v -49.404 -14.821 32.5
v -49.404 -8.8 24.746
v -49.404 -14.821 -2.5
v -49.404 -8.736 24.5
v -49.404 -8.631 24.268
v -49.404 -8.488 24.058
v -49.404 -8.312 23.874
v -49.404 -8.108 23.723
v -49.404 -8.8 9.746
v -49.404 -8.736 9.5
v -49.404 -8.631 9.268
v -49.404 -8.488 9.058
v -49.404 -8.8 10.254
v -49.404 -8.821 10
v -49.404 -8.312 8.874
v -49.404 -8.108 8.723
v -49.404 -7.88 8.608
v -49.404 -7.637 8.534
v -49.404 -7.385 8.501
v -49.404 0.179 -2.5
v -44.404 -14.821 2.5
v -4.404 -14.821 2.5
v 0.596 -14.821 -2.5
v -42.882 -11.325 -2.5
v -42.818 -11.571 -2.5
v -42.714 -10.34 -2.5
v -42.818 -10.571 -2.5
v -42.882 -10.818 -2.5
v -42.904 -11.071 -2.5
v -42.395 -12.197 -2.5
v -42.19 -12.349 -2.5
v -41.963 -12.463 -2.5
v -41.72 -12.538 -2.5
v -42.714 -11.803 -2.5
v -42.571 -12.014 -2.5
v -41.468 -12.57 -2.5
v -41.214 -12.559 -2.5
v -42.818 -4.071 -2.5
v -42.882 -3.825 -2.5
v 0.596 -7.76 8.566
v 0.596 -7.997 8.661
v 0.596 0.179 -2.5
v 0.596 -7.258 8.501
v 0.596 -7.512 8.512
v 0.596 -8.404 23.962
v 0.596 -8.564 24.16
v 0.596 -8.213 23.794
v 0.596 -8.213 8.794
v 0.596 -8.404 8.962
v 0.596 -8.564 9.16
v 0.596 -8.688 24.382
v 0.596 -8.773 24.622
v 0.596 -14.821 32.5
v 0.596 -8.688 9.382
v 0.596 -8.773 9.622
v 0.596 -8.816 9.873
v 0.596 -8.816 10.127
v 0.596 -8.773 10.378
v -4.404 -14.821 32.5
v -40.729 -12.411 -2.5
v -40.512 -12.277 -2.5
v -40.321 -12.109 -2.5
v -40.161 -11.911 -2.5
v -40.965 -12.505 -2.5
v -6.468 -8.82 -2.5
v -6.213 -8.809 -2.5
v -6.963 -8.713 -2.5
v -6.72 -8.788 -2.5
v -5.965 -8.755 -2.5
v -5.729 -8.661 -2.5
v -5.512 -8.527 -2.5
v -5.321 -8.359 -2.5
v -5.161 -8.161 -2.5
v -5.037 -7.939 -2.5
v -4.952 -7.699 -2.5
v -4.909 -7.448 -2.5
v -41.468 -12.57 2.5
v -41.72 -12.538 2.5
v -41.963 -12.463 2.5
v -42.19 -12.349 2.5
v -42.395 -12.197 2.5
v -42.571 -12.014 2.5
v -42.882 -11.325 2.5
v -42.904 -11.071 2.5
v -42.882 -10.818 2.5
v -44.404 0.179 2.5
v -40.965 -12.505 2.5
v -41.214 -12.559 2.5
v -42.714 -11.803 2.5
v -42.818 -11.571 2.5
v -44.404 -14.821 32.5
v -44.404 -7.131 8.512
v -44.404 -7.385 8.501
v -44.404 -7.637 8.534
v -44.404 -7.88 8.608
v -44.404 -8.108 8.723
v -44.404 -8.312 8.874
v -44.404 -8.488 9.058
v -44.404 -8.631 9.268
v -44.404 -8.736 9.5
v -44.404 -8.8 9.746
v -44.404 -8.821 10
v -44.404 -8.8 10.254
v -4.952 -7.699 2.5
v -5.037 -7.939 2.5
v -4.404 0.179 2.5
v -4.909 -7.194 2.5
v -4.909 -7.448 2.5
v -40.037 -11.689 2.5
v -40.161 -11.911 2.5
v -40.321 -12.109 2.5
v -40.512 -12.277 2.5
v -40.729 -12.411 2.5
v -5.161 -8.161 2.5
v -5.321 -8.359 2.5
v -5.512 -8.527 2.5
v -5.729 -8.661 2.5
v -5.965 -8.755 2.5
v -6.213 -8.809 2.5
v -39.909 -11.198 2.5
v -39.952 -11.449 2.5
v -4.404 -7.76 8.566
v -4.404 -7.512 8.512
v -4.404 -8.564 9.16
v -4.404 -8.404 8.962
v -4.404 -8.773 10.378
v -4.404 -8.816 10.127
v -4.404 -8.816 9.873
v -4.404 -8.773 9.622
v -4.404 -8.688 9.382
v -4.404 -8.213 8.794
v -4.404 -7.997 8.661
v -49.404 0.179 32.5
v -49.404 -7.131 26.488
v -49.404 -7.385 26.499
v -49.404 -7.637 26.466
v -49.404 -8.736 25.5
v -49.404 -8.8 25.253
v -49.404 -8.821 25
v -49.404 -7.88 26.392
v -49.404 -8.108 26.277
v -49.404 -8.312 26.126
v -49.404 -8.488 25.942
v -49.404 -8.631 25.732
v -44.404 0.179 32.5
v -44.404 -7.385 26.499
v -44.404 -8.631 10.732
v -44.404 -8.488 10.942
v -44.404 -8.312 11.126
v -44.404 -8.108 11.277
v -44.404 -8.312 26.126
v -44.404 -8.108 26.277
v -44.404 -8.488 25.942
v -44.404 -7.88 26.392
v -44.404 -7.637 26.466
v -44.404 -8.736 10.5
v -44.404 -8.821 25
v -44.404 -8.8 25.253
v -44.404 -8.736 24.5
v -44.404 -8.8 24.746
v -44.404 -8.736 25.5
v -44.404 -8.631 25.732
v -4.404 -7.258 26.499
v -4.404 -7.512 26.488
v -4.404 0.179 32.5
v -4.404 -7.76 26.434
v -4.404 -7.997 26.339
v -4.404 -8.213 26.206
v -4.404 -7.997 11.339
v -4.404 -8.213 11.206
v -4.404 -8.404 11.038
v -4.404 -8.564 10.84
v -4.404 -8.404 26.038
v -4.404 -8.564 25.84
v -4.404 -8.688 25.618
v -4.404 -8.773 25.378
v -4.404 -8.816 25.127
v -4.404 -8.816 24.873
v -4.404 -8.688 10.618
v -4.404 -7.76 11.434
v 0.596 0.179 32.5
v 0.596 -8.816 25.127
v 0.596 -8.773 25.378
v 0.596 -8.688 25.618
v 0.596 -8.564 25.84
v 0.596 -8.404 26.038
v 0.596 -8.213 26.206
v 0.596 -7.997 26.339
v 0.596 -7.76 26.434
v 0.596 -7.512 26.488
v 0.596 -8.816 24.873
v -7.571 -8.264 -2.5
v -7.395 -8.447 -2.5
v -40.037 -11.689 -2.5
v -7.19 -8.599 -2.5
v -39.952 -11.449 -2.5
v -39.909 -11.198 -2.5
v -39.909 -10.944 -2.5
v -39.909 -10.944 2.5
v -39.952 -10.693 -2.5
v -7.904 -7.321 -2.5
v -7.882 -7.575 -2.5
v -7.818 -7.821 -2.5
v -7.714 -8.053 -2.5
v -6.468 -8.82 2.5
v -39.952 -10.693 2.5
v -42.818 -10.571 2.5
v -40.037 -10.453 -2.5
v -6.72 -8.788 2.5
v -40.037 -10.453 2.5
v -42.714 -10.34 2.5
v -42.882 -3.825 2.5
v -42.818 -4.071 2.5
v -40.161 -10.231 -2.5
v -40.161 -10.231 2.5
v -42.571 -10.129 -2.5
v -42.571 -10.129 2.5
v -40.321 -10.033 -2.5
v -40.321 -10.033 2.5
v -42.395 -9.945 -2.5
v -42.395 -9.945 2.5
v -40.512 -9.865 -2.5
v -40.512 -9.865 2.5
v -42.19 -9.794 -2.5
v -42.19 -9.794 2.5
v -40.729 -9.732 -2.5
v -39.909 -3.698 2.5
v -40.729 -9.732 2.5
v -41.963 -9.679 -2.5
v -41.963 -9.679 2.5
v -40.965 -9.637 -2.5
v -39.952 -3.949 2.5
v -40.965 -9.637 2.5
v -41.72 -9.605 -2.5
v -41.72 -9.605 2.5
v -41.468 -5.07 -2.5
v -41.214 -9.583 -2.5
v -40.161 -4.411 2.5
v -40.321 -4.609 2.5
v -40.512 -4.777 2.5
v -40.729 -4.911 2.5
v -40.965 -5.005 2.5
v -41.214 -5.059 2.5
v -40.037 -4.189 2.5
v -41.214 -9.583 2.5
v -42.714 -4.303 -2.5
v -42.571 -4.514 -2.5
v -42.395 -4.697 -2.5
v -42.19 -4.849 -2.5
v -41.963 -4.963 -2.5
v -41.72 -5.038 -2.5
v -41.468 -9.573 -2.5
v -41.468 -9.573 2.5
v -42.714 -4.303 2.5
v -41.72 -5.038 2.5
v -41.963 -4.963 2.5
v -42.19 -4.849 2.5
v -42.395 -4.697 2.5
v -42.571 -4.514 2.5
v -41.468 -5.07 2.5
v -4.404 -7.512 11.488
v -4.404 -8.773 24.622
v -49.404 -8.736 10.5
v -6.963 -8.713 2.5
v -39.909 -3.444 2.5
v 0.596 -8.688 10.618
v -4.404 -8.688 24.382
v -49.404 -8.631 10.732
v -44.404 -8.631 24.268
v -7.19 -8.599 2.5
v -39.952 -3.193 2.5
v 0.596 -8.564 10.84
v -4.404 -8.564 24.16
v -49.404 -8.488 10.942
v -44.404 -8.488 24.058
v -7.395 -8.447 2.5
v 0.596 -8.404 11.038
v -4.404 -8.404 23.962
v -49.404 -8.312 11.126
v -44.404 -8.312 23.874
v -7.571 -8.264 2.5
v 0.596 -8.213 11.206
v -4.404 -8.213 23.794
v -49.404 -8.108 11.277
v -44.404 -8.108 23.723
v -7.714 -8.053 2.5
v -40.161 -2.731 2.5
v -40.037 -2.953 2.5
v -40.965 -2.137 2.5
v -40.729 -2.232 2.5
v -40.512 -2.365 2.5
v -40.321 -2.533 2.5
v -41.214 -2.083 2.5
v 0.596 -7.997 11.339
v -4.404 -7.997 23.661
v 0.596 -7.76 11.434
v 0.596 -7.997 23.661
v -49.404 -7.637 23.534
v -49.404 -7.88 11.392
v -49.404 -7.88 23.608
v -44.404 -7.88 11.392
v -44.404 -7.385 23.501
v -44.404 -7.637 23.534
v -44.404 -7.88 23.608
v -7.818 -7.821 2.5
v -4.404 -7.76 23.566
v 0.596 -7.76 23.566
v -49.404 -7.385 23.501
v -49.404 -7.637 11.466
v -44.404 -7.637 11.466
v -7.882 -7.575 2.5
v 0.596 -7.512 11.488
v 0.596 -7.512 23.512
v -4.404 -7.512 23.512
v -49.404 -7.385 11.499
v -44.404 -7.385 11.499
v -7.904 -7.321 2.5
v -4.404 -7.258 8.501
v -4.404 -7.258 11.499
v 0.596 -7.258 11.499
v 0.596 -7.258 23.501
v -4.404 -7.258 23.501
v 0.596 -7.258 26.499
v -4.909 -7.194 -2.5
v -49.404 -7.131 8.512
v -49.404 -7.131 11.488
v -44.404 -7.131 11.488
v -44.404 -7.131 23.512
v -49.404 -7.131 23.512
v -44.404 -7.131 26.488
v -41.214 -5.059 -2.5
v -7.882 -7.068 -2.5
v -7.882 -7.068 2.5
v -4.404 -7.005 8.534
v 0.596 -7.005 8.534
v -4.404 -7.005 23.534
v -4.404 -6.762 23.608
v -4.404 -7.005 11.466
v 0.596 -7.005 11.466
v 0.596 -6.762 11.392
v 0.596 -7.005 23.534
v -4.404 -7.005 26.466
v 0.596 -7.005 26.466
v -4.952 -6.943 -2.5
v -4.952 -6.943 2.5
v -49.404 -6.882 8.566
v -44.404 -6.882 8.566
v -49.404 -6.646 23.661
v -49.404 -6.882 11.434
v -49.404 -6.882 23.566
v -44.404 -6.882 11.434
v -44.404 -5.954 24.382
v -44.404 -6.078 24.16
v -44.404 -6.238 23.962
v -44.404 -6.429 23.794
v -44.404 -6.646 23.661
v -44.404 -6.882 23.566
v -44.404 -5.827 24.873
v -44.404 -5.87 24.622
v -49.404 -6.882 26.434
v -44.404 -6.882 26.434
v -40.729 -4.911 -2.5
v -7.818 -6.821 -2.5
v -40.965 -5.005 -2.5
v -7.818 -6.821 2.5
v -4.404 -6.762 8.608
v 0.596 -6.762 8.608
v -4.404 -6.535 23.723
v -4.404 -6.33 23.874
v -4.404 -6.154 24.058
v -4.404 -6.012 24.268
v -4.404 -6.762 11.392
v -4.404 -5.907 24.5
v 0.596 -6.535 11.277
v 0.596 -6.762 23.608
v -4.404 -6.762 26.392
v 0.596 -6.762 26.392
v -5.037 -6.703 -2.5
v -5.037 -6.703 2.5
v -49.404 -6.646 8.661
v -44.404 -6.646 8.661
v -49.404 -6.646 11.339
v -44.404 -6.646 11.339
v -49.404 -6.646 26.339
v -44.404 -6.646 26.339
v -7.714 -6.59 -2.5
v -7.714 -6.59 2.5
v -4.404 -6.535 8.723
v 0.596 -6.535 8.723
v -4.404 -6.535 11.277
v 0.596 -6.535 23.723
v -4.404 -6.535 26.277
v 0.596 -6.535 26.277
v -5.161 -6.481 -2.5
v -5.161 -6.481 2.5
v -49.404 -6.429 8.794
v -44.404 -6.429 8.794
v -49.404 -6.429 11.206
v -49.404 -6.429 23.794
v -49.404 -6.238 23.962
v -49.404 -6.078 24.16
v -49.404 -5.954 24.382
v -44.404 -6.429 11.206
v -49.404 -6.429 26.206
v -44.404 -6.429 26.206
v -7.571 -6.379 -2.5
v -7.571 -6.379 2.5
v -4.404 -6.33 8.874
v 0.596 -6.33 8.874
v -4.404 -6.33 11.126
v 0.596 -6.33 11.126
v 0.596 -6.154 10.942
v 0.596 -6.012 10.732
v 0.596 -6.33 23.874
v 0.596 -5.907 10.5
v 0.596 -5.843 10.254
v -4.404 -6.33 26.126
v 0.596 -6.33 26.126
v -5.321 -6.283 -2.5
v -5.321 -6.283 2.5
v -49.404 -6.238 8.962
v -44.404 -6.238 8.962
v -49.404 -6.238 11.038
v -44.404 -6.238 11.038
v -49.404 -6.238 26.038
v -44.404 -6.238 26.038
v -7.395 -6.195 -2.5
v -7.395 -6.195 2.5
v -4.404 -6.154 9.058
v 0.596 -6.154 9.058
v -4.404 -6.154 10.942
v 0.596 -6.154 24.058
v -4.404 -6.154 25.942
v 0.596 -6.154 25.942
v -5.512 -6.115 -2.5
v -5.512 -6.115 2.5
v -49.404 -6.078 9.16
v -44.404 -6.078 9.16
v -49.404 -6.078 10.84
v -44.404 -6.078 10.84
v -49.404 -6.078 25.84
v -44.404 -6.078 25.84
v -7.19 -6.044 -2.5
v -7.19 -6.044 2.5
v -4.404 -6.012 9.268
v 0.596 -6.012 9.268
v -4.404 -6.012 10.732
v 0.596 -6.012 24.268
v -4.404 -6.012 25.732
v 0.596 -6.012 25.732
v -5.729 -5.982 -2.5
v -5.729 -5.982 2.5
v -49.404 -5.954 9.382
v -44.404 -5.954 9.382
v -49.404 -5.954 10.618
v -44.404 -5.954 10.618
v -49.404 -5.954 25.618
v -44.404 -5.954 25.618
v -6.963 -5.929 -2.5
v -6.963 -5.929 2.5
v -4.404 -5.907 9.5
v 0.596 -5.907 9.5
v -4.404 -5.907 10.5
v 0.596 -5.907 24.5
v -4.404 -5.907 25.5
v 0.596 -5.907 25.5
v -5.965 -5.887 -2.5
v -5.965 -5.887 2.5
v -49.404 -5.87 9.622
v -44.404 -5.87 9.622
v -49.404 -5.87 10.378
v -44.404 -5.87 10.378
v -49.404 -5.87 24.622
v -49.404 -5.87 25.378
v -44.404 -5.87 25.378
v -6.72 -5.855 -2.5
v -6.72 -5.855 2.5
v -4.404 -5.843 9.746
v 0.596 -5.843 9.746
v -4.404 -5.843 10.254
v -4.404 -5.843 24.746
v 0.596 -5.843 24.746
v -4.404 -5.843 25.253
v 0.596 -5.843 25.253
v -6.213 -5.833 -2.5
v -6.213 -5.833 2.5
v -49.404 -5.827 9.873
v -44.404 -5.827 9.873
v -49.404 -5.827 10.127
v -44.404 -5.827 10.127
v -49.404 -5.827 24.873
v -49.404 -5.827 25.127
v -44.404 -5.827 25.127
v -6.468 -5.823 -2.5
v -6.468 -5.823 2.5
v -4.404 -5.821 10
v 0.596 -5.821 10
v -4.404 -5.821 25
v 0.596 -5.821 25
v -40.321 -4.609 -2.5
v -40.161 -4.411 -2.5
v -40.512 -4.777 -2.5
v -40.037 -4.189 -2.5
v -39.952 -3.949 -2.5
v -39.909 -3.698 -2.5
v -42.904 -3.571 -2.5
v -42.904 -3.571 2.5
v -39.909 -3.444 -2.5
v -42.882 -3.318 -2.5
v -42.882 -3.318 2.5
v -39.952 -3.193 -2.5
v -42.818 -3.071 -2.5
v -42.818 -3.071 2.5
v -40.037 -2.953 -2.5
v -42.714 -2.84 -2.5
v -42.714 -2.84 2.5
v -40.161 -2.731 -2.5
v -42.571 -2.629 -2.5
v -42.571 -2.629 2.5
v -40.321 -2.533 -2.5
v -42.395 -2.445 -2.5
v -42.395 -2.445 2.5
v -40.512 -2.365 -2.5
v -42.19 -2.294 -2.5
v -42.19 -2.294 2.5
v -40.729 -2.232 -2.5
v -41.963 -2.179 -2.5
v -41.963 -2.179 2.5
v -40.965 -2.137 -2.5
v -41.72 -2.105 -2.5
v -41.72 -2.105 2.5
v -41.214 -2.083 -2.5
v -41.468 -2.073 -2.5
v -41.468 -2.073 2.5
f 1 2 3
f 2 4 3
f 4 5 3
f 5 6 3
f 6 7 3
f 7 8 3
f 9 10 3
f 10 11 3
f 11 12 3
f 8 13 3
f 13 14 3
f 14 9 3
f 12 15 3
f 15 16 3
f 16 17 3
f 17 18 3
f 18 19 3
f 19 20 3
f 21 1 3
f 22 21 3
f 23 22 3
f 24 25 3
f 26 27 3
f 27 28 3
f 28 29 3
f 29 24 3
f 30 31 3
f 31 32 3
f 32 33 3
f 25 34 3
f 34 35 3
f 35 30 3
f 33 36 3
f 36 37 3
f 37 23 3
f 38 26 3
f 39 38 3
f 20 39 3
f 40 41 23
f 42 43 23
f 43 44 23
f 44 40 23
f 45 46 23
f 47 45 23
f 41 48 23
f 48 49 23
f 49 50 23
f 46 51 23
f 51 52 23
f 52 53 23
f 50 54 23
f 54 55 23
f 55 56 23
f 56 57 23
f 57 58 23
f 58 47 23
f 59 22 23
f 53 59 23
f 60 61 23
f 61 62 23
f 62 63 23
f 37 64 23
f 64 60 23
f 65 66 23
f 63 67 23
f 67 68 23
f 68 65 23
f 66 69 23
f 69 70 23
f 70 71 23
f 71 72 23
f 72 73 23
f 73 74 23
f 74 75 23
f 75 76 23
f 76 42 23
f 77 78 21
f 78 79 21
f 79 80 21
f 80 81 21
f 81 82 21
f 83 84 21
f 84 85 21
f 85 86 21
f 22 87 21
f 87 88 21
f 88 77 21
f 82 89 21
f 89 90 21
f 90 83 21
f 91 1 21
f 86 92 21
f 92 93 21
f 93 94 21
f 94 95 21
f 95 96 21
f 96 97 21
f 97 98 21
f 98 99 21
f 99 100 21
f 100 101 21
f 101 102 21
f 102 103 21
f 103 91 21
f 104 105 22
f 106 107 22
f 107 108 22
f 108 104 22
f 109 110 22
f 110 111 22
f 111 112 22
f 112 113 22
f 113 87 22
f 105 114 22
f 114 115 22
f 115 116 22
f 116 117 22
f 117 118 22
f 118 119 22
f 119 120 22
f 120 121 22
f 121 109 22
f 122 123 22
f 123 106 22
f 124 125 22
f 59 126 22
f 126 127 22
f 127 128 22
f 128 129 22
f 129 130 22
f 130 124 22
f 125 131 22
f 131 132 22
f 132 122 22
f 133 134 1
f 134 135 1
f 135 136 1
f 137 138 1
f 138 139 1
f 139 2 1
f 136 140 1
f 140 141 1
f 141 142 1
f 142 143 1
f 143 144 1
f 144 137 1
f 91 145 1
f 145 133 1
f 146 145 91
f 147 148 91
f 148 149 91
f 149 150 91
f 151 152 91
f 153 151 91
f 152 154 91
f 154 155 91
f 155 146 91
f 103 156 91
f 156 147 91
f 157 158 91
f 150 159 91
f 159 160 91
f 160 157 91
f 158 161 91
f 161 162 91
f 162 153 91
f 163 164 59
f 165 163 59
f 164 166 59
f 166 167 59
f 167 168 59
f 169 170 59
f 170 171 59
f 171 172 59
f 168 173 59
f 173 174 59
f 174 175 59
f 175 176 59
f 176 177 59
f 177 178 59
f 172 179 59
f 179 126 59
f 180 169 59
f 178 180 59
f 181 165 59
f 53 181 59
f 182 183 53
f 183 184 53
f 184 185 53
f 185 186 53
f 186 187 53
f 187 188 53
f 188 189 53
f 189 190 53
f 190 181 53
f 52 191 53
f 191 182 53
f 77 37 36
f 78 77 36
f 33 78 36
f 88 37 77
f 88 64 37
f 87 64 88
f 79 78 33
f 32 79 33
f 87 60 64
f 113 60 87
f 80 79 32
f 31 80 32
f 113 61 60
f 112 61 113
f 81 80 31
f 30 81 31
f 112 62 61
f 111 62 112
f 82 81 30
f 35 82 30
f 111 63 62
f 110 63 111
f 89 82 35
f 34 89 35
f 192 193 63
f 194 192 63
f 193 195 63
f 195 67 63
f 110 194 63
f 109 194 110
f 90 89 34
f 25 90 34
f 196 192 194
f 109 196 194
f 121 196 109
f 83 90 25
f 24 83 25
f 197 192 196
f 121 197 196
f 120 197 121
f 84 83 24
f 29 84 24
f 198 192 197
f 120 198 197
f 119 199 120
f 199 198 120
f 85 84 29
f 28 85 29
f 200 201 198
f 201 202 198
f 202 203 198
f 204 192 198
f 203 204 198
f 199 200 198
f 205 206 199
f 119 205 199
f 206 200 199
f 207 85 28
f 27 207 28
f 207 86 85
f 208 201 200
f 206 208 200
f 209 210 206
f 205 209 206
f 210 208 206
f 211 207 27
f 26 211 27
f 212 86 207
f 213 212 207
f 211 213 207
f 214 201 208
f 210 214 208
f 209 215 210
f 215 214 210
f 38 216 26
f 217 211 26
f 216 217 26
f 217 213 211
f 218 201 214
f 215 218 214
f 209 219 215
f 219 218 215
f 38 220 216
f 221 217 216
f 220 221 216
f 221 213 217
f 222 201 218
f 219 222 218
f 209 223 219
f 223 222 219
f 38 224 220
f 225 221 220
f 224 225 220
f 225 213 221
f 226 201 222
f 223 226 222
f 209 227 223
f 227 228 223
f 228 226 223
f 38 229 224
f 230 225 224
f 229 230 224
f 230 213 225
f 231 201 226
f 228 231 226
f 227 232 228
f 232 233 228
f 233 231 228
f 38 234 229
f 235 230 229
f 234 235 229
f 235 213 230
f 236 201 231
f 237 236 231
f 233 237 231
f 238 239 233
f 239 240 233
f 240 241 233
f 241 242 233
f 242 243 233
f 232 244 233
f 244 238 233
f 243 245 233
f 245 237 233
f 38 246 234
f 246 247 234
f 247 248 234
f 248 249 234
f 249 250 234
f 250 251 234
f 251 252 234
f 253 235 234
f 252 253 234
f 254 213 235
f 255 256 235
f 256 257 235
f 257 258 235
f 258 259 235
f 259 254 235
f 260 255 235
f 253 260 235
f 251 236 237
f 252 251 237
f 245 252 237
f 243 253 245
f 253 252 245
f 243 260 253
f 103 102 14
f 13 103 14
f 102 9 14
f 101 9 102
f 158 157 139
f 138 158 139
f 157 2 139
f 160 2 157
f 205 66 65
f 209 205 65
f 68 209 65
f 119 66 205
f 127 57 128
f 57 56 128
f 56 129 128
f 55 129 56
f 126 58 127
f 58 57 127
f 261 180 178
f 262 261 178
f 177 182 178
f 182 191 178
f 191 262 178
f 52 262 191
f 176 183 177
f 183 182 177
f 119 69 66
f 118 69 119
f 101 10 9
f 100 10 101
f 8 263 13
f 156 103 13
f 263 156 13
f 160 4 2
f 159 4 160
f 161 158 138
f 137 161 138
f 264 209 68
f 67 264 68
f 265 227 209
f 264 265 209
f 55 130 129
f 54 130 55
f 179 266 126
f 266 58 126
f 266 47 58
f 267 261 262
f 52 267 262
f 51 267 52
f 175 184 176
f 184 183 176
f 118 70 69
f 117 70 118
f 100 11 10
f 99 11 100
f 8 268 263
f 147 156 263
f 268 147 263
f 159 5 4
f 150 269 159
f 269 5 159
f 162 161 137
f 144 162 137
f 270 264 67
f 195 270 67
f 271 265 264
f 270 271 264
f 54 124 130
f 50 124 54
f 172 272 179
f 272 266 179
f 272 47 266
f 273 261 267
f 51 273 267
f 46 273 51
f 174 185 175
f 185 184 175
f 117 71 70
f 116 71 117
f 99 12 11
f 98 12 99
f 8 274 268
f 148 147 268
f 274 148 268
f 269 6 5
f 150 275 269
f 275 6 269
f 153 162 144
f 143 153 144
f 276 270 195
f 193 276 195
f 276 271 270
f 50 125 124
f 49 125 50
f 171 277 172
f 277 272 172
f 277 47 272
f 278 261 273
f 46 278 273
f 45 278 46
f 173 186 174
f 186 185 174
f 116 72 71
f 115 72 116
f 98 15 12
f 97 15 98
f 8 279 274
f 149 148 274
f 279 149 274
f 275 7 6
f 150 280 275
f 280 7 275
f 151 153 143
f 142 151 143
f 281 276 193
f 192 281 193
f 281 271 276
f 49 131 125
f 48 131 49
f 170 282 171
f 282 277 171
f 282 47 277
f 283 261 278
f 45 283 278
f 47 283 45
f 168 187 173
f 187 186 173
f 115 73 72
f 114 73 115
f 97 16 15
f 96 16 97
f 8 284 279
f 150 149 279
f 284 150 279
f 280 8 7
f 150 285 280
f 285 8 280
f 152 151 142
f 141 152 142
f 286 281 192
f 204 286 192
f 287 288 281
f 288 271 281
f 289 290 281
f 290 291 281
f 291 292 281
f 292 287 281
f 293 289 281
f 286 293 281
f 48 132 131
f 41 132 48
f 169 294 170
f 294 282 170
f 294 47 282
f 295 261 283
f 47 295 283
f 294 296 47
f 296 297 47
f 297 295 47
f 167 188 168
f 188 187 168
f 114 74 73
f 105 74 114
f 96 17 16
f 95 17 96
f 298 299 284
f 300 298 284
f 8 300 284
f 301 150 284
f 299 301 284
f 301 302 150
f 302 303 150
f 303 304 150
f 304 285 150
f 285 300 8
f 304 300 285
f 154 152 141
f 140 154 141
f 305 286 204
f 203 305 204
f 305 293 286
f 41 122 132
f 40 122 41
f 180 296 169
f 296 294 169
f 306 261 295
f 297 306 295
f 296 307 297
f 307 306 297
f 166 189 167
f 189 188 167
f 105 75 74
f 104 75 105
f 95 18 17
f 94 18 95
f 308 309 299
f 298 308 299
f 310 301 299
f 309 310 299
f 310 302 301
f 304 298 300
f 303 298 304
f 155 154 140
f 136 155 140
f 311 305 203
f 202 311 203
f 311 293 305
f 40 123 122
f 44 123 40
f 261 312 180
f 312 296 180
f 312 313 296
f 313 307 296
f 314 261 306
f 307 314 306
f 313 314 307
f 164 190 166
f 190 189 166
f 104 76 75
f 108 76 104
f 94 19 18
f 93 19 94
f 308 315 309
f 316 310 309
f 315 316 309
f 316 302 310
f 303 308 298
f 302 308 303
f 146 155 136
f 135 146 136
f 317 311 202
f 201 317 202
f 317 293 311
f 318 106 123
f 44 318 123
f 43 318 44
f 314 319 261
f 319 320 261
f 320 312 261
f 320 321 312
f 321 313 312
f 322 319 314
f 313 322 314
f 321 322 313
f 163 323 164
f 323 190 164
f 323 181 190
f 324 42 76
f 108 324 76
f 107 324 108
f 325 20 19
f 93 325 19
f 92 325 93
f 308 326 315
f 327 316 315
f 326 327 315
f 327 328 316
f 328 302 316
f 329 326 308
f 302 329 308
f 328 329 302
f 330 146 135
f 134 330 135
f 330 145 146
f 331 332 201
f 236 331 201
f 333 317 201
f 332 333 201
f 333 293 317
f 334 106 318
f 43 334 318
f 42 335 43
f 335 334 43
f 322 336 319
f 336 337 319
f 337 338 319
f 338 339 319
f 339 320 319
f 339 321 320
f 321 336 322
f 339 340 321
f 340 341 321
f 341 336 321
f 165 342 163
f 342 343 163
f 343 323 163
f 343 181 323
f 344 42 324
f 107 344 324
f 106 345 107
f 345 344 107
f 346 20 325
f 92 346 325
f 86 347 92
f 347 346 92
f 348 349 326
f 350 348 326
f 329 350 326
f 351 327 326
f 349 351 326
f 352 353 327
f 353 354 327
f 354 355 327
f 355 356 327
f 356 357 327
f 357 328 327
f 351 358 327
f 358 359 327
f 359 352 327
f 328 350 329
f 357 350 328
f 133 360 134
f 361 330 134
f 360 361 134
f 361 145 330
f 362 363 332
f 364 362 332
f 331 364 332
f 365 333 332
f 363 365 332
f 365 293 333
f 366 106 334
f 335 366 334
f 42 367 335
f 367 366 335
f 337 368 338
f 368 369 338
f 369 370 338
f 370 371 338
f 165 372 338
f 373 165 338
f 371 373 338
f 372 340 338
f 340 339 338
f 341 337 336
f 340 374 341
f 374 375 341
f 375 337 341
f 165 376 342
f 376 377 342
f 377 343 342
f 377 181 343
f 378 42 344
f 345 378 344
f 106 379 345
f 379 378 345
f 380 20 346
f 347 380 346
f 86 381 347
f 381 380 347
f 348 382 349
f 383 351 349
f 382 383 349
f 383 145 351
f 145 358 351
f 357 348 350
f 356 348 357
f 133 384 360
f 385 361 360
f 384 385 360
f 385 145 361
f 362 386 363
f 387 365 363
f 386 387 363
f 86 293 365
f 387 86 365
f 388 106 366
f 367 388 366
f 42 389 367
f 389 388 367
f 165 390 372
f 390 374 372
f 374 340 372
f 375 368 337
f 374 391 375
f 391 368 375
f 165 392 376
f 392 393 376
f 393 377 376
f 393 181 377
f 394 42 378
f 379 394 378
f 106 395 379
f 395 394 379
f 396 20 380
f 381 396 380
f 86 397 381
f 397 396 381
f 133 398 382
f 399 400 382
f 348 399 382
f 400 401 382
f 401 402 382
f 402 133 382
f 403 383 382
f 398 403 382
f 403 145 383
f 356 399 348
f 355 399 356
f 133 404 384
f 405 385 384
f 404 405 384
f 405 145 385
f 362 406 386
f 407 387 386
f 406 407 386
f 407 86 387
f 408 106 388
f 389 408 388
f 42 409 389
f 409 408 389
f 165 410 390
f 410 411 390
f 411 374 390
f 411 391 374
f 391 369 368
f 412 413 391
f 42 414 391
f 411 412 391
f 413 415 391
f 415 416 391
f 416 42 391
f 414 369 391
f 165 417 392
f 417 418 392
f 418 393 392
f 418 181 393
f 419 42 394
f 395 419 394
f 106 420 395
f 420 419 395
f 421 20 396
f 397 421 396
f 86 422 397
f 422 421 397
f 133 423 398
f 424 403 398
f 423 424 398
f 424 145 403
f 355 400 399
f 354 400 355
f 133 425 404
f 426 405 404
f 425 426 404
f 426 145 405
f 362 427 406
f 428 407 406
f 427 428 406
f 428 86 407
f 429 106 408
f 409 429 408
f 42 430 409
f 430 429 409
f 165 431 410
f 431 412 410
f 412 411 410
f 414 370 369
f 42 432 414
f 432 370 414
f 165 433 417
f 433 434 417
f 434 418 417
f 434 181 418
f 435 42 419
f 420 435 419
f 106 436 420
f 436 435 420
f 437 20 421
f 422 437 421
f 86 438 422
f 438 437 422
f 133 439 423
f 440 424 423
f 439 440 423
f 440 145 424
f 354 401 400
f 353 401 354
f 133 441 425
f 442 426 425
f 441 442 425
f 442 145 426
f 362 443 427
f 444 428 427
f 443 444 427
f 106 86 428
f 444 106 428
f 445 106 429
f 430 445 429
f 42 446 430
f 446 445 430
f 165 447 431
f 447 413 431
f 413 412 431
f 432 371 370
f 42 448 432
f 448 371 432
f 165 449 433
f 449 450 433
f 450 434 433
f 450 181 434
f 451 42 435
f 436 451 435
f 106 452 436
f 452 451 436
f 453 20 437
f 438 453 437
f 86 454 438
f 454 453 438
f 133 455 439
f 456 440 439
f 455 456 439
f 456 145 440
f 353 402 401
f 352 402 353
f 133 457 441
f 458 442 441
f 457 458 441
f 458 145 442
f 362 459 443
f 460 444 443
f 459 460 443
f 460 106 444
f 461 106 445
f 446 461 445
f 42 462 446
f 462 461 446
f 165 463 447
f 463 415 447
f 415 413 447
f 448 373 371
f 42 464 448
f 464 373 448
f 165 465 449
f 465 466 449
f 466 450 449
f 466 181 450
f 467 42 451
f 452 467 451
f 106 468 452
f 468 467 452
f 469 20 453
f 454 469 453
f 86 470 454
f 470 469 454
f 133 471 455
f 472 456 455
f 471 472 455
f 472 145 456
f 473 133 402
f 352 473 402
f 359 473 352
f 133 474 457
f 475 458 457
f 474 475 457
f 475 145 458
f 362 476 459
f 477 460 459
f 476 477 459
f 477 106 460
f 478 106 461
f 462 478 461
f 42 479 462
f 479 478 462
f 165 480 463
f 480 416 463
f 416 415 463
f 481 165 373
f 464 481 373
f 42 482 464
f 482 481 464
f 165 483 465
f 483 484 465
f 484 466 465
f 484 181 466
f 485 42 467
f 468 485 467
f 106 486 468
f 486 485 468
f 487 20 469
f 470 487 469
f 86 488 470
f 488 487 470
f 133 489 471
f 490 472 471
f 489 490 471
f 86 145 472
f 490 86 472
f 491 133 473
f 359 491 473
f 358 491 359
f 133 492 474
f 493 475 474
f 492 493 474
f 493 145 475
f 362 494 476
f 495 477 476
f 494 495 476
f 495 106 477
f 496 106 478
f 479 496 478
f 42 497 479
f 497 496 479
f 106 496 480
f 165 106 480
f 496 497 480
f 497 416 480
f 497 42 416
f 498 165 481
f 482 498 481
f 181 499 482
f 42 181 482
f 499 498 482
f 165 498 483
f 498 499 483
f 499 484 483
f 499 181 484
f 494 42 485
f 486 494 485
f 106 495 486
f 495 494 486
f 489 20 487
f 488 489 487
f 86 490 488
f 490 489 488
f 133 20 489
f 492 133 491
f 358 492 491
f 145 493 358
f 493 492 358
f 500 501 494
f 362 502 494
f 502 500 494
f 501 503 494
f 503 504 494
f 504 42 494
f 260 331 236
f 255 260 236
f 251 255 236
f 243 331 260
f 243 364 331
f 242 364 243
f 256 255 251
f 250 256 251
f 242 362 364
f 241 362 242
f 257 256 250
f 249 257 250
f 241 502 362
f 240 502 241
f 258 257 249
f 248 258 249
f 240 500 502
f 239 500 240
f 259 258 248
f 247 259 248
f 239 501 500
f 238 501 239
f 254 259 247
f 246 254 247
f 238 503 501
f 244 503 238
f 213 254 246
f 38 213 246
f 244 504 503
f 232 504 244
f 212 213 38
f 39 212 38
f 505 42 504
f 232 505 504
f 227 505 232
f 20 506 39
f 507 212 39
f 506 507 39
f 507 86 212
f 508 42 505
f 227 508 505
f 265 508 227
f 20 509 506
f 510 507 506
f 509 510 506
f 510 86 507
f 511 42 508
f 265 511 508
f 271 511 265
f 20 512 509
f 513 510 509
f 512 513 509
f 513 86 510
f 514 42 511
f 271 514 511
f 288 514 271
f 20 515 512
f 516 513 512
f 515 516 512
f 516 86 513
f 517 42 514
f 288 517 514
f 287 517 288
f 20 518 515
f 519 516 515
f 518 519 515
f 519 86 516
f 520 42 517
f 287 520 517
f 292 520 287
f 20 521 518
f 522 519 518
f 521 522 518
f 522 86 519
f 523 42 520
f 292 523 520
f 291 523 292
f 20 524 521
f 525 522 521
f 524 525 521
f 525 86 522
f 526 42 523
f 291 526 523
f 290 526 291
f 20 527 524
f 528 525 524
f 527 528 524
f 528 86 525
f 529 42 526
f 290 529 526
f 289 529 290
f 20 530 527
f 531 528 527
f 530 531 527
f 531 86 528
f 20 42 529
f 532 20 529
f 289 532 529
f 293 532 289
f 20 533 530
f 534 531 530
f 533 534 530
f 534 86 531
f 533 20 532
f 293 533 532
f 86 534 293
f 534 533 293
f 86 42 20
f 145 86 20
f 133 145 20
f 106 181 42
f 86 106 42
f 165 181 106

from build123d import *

# Parameters (mm, degrees)
BOSS_EXTRUDE1_DEPTH      = 2.5
BOSS_EXTRUDE1_DEPTH_BACK = 2.5
SKETCH1_W                = 50
SKETCH1_H                = 15
SKETCH2_W                = 5
SKETCH2_H                = 15
BOSS_EXTRUDE2_DEPTH      = 30
SKETCH3_W                = 5
SKETCH3_H                = 15
BOSS_EXTRUDE3_DEPTH      = 30
SKETCH4_R                = 1.5
CUT_EXTRUDE1_DEPTH       = 5
SKETCH5_R                = 1.5
CUT_EXTRUDE2_DEPTH       = 5
CUT_EXTRUDE3_START       = -5
SKETCH6_R                = 1.5
CUT_EXTRUDE3_DEPTH       = 5
CUT_EXTRUDE5_START       = -5
SKETCH7_R                = 1.5
CUT_EXTRUDE5_DEPTH       = 5
SKETCH11_R               = 1.5
CUT_EXTRUDE6_DEPTH       = 5
SKETCH12_R               = 1.5
CUT_EXTRUDE7_DEPTH       = 5


with BuildPart() as part:
    # Sketch1 → Boss-Extrude1 (new, two sides: drawn at the far end of the back side and taken through both)
    with BuildSketch(Plane.XY.offset(-BOSS_EXTRUDE1_DEPTH_BACK)):
        with Locations((-24.404028235, -7.321208471)):
            Rectangle(SKETCH1_W, SKETCH1_H)
    extrude(amount=BOSS_EXTRUDE1_DEPTH + BOSS_EXTRUDE1_DEPTH_BACK)

    # Sketch2 → Boss-Extrude2 (add)
    with BuildSketch(Plane.XY.offset(2.5)):
        with Locations((-46.904028235, -7.321208471)):
            Rectangle(SKETCH2_W, SKETCH2_H)
    extrude(amount=BOSS_EXTRUDE2_DEPTH)

    # Sketch3 → Boss-Extrude3 (add)
    with BuildSketch(Plane.XY.offset(2.5)):
        with Locations((-1.904028235, -7.321208471)):
            Rectangle(SKETCH3_W, SKETCH3_H)
    extrude(amount=BOSS_EXTRUDE3_DEPTH)

    # Sketch4 → Cut-Extrude1 (cut)
    with BuildSketch(Plane.ZY.offset(49.404028235)):
        with Locations((25, -7.321208471)):
            Circle(SKETCH4_R)
    extrude(amount=-CUT_EXTRUDE1_DEPTH, mode=Mode.SUBTRACT)

    # Sketch5 → Cut-Extrude2 (cut)
    with BuildSketch(Plane.ZY.offset(49.404028235)):
        with Locations((10, -7.321208471)):
            Circle(SKETCH5_R)
    extrude(amount=-CUT_EXTRUDE2_DEPTH, mode=Mode.SUBTRACT)

    # Sketch6 → Cut-Extrude3 (cut)
    with BuildSketch(Plane(origin=(0.595971765, 0, 0), x_dir=(0, 0, -1), z_dir=(1, 0, 0)).offset(CUT_EXTRUDE3_START)):
        with Locations((-25, -7.321208471)):
            Circle(SKETCH6_R)
    extrude(amount=CUT_EXTRUDE3_DEPTH, mode=Mode.SUBTRACT)

    # Sketch7 → Cut-Extrude5 (cut)
    with BuildSketch(Plane(origin=(0.595971765, 0, 0), x_dir=(0, 0, -1), z_dir=(1, 0, 0)).offset(CUT_EXTRUDE5_START)):
        with Locations((-10, -7.321208471)):
            Circle(SKETCH7_R)
    extrude(amount=CUT_EXTRUDE5_DEPTH, mode=Mode.SUBTRACT)

    # Sketch11 → Cut-Extrude6 (cut)
    with BuildSketch(Plane(origin=(0, 0, -2.5), x_dir=(-1, 0, 0), z_dir=(0, 0, -1))):
        with Locations((41.404028235, -3.571208471)):
            Circle(SKETCH11_R)
        with Locations((41.404028235, -11.071208471)):
            Circle(SKETCH11_R)
    extrude(amount=-CUT_EXTRUDE6_DEPTH, mode=Mode.SUBTRACT)

    # Sketch12 → Cut-Extrude7 (cut)
    with BuildSketch(Plane(origin=(0, 0, -2.5), x_dir=(-1, 0, 0), z_dir=(0, 0, -1))):
        with Locations((6.404028235, -7.321208471)):
            Circle(SKETCH12_R)
    extrude(amount=-CUT_EXTRUDE7_DEPTH, mode=Mode.SUBTRACT)


solid = part.part
